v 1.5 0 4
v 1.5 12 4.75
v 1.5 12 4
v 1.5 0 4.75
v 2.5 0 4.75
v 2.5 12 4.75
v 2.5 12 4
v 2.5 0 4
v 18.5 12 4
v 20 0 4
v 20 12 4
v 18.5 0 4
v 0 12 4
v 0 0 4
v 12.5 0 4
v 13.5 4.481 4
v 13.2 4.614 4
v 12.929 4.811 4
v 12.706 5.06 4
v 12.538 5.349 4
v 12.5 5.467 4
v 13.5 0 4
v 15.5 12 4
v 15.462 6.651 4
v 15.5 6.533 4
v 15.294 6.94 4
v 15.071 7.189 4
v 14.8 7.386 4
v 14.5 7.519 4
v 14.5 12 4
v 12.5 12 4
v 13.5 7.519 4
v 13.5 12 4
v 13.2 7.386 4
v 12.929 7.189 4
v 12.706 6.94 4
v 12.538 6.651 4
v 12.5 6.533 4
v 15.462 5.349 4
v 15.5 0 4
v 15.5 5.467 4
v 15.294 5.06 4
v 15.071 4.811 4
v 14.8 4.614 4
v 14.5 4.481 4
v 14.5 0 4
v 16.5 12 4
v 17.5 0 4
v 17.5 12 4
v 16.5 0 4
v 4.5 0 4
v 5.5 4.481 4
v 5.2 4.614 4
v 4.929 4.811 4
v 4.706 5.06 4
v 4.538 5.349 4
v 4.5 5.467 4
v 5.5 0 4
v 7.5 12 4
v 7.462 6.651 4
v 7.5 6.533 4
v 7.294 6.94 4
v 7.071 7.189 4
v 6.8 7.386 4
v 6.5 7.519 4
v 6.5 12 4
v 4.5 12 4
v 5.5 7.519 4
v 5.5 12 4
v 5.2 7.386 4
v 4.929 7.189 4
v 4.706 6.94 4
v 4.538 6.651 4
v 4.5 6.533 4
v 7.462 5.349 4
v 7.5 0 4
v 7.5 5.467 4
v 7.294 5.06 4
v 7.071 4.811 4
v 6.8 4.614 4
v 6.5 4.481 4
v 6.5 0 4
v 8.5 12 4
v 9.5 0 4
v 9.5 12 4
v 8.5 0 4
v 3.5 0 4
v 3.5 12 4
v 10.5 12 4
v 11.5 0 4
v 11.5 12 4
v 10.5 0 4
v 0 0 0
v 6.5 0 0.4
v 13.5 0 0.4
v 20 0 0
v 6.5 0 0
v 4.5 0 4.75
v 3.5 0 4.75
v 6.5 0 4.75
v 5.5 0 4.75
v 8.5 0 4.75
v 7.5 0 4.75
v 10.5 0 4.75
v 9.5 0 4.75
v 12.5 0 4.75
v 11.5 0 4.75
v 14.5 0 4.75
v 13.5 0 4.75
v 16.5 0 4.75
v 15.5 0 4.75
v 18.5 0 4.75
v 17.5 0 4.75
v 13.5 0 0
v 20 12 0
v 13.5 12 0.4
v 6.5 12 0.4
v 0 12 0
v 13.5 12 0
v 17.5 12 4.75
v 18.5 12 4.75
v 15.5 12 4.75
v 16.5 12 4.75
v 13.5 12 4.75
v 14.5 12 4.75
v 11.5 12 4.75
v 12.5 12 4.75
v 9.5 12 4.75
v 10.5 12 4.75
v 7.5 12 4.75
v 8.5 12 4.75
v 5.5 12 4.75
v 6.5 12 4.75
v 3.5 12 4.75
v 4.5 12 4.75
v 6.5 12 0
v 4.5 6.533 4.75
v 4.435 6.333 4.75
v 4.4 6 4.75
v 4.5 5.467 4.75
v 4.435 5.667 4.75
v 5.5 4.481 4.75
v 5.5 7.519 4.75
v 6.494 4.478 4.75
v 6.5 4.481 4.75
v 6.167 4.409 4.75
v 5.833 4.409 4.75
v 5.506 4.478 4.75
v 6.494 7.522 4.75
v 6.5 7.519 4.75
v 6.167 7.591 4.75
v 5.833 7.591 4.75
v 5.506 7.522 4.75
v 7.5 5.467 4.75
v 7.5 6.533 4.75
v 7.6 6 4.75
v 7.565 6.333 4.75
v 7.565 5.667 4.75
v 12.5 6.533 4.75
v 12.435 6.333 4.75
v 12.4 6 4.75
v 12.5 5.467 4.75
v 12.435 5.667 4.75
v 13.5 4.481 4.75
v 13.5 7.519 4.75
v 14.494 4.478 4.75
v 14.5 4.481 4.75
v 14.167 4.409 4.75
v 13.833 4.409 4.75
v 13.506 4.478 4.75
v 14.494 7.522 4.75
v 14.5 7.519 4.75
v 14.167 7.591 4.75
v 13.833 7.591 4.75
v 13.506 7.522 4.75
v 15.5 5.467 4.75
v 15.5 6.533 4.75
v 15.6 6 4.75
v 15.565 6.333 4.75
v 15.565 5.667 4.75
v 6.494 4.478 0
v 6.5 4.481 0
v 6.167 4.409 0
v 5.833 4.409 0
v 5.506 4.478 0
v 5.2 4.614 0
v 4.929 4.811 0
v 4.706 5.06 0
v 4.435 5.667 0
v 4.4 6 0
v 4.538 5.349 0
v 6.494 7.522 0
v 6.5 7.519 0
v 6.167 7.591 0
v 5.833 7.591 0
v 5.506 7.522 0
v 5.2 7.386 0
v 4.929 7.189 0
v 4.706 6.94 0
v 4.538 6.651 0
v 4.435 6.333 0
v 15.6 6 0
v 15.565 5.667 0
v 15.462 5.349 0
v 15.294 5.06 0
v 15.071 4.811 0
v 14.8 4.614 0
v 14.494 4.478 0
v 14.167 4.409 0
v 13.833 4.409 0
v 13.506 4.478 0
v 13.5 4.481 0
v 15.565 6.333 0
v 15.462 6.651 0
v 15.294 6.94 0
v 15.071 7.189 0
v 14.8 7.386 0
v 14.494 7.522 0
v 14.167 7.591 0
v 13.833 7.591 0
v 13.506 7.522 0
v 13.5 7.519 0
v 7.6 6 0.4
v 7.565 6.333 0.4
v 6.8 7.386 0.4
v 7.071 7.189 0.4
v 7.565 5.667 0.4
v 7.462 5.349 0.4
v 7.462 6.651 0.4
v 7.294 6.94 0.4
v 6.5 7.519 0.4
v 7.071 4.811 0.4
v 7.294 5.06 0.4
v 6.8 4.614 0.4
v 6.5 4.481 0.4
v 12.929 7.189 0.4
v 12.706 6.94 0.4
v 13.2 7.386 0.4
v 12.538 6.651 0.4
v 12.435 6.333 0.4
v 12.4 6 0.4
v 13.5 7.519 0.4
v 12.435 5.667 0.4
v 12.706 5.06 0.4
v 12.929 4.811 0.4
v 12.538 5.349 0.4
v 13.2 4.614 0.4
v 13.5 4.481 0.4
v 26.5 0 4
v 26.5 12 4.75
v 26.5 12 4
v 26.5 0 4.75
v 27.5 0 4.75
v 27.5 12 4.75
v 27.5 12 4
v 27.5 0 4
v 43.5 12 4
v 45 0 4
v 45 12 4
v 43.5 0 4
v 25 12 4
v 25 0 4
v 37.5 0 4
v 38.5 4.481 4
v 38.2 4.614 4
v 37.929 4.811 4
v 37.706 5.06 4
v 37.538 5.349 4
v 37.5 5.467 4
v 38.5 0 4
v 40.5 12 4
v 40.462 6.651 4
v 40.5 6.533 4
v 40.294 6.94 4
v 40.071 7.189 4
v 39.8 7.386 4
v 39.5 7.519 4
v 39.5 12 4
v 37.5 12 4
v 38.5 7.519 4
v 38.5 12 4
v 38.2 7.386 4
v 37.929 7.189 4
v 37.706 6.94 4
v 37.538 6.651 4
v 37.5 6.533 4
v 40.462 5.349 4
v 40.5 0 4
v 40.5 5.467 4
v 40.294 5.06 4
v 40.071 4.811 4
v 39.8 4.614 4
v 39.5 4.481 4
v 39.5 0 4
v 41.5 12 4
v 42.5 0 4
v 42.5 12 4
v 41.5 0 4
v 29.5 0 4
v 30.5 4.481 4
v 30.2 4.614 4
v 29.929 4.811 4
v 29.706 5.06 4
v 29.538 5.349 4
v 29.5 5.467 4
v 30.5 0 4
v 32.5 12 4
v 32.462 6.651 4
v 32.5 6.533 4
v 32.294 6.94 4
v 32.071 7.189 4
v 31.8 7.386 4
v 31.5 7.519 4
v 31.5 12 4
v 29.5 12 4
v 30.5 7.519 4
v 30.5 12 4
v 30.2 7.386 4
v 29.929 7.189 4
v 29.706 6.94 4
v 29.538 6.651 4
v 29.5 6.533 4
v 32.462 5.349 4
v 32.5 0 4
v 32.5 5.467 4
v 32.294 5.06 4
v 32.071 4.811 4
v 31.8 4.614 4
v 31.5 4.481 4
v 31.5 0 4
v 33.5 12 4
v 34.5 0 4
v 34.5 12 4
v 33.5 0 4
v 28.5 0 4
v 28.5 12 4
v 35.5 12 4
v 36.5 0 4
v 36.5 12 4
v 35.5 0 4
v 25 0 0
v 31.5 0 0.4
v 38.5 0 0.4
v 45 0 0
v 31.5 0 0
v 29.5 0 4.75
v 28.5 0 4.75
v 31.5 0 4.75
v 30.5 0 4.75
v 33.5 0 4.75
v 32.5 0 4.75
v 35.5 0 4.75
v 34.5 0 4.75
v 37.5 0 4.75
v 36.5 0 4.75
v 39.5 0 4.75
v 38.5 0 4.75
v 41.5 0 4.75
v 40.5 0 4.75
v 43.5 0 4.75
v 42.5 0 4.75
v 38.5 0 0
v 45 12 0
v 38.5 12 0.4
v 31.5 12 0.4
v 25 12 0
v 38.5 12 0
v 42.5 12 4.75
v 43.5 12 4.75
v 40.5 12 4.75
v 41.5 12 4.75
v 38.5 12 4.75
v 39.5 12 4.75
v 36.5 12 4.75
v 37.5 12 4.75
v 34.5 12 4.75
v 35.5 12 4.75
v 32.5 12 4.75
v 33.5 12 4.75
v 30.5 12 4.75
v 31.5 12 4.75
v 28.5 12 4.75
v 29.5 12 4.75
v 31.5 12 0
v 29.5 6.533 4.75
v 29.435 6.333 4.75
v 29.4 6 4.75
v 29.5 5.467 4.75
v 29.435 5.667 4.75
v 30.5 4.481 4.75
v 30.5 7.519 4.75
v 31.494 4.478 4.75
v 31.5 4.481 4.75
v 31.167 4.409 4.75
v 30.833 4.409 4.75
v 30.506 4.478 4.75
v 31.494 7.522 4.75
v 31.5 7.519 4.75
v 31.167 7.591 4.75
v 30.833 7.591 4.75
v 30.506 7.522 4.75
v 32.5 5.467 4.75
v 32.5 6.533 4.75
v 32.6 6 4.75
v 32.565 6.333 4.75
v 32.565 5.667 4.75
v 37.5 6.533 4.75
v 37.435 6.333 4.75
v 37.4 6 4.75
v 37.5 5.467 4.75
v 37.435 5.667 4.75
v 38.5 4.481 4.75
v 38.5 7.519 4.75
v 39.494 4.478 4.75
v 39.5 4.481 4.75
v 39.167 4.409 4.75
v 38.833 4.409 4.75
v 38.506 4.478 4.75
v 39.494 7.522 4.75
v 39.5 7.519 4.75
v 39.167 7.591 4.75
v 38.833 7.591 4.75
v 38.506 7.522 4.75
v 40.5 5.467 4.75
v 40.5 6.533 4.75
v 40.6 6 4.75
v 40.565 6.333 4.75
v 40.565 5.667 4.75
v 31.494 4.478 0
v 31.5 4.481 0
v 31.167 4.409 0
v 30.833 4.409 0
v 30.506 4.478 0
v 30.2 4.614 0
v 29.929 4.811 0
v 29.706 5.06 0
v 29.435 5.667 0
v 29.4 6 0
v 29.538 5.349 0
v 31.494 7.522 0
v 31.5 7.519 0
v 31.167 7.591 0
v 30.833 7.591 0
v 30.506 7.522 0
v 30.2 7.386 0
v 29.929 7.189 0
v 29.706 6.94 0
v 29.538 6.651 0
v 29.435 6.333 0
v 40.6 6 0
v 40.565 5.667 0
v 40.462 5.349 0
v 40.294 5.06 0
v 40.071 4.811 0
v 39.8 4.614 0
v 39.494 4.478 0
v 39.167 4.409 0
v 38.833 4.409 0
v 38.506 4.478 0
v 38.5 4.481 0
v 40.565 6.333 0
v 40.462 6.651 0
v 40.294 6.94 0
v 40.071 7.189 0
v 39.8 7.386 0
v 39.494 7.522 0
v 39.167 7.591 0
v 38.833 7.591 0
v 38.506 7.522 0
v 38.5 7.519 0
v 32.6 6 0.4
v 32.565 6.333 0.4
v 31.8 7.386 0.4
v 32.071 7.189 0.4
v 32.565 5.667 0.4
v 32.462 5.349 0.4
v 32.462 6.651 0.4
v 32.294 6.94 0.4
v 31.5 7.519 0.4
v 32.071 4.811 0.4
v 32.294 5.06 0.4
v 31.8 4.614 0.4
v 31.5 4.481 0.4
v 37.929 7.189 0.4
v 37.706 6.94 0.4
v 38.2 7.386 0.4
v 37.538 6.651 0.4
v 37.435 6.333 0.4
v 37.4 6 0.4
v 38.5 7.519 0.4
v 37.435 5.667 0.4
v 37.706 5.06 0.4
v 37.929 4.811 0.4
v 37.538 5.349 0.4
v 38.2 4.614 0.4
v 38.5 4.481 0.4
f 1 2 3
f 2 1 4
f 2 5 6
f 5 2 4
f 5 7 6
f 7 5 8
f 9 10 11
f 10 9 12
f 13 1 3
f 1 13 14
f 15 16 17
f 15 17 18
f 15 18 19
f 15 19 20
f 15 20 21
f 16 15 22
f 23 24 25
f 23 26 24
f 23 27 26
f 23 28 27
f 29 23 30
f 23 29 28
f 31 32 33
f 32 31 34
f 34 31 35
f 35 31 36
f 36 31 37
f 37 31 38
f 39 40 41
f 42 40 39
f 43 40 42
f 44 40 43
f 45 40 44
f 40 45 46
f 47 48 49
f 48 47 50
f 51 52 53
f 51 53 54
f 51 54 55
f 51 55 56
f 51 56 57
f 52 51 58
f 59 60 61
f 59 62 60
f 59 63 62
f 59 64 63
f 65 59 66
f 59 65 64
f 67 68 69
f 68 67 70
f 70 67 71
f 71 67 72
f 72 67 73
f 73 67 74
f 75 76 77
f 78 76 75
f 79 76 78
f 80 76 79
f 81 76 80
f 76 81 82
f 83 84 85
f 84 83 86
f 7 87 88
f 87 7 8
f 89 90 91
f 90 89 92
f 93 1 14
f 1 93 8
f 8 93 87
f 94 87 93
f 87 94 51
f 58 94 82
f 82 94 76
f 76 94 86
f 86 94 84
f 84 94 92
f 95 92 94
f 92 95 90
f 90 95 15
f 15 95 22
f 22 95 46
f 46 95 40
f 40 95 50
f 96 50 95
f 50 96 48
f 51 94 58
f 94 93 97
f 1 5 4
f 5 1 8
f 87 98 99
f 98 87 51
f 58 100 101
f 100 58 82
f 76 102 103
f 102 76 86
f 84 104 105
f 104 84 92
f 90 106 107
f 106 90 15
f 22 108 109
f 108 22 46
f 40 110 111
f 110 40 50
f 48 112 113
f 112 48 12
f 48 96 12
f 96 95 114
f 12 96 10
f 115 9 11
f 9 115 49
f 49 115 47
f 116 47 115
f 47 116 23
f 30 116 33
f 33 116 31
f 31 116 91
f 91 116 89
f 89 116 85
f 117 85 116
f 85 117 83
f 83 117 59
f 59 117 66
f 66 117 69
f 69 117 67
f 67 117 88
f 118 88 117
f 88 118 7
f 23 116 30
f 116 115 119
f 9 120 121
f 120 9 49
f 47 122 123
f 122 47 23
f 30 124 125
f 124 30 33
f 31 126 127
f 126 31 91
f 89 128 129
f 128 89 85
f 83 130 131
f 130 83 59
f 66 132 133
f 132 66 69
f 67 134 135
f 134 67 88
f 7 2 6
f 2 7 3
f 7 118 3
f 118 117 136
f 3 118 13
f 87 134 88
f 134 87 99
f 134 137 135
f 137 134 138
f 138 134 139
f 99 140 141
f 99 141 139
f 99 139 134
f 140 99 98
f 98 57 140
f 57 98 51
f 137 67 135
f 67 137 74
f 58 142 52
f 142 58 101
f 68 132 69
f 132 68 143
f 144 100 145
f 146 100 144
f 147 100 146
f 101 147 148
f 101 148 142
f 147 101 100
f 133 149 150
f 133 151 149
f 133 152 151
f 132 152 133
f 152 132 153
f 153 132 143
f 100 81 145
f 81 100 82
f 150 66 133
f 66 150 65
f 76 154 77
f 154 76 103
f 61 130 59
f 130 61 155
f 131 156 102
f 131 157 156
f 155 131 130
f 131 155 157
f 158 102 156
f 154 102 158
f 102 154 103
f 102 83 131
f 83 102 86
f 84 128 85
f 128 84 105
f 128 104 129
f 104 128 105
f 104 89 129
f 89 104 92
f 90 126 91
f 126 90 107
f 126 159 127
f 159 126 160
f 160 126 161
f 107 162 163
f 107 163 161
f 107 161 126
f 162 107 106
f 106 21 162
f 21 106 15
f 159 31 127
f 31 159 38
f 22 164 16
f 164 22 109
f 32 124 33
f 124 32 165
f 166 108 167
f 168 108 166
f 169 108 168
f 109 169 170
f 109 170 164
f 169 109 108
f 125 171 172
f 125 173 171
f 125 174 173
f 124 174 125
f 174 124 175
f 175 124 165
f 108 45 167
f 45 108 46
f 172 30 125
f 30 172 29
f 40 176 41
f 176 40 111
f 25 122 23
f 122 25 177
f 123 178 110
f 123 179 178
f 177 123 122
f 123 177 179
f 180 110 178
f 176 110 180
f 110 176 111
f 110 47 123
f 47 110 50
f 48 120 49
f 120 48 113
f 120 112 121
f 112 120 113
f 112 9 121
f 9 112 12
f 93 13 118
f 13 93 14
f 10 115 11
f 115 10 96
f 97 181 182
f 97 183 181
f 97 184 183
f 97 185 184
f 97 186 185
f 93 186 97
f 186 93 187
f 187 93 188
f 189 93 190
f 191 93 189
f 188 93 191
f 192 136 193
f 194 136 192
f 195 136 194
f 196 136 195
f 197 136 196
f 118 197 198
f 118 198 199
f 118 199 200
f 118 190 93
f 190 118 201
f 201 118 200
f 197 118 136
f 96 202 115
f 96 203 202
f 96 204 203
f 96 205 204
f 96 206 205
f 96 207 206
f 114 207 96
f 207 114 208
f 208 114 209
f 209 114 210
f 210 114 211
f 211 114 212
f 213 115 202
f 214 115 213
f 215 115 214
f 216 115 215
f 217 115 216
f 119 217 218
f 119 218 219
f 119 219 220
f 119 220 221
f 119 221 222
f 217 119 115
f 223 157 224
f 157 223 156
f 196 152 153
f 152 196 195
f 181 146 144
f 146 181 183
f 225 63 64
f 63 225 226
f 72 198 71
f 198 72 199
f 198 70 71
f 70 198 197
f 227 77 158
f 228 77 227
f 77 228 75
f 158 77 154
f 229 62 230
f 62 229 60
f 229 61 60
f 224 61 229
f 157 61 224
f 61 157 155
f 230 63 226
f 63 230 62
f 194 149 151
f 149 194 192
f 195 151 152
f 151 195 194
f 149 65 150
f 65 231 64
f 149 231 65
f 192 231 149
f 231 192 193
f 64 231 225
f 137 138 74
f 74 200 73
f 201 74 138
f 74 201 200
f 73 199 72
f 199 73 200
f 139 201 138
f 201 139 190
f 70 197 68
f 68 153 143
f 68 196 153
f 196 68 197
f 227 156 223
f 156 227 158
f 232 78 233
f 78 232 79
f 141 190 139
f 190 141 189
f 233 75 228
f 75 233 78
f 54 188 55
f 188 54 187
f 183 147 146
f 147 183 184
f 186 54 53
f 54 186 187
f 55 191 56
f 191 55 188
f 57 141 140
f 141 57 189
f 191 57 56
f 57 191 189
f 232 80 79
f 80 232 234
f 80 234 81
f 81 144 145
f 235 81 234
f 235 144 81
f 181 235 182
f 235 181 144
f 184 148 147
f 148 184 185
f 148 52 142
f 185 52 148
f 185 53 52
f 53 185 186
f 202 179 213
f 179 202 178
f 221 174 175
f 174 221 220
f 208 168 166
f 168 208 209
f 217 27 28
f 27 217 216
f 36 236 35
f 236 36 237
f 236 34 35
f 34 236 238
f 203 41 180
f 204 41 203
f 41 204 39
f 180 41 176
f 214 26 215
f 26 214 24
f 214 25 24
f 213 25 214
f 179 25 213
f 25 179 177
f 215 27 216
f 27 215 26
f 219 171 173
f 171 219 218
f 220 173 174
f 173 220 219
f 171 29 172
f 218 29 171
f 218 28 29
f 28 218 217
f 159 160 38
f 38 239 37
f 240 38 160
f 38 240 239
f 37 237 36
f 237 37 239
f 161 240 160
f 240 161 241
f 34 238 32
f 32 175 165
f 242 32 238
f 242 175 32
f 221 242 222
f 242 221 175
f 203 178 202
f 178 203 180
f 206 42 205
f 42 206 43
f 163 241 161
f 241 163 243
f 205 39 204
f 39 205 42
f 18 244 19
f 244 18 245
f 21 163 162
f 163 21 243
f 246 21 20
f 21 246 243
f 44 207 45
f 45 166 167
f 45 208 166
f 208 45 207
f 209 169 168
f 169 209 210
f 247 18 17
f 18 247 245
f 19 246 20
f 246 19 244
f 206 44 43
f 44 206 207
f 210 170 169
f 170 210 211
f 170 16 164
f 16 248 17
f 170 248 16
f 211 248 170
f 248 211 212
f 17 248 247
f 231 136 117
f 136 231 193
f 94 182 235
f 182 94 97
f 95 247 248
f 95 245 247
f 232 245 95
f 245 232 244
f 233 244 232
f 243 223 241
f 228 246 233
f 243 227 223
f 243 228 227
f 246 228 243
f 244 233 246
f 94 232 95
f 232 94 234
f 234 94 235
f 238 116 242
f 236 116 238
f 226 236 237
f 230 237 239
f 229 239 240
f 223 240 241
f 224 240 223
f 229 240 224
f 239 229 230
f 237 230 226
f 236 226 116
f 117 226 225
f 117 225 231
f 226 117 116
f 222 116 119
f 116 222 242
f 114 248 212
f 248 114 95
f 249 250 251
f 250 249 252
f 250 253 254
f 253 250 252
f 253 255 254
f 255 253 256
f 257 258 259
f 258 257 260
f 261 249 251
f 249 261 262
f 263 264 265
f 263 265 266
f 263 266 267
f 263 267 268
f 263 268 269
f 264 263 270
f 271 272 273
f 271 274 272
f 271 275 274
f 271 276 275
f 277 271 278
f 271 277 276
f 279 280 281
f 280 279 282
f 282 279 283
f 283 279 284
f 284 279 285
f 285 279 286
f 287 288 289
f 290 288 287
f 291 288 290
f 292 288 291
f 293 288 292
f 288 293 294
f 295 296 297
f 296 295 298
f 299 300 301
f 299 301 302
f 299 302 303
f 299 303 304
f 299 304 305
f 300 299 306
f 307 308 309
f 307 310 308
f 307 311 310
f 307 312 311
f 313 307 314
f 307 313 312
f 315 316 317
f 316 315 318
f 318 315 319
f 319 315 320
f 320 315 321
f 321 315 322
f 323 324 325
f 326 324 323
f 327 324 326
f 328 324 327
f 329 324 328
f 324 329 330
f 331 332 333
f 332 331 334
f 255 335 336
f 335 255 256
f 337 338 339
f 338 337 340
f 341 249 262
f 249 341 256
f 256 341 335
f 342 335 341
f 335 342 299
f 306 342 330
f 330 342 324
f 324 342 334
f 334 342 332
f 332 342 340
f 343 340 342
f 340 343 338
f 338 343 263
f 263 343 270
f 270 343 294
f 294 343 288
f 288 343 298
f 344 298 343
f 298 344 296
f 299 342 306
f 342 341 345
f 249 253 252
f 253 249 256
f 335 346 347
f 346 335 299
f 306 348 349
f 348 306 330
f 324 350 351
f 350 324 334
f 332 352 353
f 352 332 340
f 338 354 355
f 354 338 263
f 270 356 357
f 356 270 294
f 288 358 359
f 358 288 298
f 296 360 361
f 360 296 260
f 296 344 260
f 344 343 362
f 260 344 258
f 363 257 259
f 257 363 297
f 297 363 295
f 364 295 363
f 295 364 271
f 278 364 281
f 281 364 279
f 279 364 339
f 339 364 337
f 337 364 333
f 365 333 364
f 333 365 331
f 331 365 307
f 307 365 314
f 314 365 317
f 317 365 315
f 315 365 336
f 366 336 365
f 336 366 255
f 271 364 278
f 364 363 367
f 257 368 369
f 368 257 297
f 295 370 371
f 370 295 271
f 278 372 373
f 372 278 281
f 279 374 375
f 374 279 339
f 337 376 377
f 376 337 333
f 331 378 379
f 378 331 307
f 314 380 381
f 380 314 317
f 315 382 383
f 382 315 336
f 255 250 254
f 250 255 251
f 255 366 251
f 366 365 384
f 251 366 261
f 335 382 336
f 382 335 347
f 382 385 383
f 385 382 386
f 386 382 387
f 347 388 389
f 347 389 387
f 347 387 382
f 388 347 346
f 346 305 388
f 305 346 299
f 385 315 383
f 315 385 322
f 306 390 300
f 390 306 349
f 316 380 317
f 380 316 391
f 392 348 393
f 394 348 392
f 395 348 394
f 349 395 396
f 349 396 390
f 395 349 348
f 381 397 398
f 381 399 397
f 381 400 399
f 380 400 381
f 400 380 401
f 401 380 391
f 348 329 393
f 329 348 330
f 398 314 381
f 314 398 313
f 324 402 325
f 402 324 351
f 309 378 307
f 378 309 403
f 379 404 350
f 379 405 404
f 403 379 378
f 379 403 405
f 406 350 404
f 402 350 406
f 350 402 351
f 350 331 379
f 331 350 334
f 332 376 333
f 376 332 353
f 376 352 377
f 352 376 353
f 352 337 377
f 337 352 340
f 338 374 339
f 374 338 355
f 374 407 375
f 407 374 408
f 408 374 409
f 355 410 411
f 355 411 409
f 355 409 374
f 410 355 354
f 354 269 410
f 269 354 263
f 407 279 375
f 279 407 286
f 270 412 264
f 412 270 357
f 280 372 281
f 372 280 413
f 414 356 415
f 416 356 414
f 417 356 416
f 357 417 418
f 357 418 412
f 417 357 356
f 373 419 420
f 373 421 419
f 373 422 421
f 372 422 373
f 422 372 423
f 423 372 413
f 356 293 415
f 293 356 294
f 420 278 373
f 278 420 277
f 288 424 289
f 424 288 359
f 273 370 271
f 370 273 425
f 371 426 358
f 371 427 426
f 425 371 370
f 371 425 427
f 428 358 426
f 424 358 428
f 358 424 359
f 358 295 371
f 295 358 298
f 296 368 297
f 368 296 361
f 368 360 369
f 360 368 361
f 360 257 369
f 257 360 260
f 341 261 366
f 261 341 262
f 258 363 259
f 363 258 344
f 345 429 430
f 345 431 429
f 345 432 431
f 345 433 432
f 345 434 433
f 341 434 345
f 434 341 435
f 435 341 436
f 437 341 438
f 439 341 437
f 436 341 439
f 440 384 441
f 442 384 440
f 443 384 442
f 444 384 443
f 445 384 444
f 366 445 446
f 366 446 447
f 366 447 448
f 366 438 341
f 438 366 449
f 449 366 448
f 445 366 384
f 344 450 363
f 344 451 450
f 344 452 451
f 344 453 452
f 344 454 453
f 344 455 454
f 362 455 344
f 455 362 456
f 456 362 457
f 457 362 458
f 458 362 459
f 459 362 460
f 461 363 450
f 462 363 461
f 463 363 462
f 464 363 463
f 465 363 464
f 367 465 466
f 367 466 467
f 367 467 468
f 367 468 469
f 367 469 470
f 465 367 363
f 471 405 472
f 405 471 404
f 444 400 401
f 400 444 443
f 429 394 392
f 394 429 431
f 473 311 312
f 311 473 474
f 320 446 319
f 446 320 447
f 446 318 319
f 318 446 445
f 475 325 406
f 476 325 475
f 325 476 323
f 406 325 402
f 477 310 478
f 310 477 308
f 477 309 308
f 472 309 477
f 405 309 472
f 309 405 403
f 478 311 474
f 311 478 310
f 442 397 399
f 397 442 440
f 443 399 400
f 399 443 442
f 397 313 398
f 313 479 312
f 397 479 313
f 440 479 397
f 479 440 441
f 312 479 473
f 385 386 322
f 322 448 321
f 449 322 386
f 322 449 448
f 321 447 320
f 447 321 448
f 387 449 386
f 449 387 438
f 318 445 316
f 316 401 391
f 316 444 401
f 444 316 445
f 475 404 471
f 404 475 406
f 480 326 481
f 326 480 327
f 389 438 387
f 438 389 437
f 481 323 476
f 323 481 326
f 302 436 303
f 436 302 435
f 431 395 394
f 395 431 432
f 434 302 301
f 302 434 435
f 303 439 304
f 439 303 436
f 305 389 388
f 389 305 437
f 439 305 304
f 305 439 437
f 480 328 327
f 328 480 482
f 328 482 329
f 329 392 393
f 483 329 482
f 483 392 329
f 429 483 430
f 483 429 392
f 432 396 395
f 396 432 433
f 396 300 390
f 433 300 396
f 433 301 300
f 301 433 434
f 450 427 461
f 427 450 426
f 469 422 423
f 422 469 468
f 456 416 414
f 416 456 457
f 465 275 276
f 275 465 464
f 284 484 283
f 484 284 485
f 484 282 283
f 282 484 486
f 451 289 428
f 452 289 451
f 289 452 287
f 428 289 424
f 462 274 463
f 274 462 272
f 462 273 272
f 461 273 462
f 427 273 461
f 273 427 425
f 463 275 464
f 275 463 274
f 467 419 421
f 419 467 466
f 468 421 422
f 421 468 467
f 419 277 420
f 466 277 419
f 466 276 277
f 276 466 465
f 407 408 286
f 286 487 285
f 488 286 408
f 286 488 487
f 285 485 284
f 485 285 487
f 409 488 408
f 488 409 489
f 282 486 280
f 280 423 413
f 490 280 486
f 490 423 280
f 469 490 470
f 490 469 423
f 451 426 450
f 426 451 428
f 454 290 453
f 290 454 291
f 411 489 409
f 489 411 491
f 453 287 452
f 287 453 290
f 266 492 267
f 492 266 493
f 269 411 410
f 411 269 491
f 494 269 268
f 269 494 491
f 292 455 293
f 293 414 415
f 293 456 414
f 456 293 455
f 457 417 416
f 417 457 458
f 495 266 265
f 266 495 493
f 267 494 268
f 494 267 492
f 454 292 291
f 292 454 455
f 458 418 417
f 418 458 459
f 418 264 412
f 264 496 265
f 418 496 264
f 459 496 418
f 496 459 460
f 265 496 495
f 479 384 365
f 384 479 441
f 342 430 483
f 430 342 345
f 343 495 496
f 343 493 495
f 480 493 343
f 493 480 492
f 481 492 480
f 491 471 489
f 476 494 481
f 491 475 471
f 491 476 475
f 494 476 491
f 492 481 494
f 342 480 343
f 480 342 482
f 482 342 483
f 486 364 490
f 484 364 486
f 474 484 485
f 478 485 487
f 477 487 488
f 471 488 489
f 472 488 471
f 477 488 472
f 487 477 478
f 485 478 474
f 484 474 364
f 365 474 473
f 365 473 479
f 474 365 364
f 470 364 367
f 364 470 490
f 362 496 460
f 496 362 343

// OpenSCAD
// ============================================================
// PART 4 — Belt Clamp Plates (print 2x)
// AI-Based Smart Precision Irrigation System (1-Axis)
// ============================================================
// Dimensions: 20 x 12 x 4 mm each
// Material: PLA+, 0.16mm layer, 100% infill, 3 perimeters
// Print time: ~20 min (both)
// Print orientation: Tooth side UP
// CRITICAL: 100% infill — these clamp the belt under full tension
// ============================================================

/* [Clamp Parameters] */
clamp_w     = 20;     // Width (along belt direction)
clamp_d     = 12;     // Depth
clamp_h     = 4;      // Base thickness

/* [GT2 Tooth Profile] */
tooth_pitch = 2.0;    // GT2 standard pitch
tooth_depth = 0.75;   // Tooth engagement depth
tooth_width = 1.0;    // Tooth land width
num_teeth   = 9;      // Number of teeth across clamp width

/* [Bolt Holes] */
bolt_dia    = 3.2;    // M3 clearance
bolt_sep    = 14;     // Matches carriage clamp boss spacing

$fn = 30;

module belt_clamp() {
    difference() {
        union() {
            // Base plate
            cube([clamp_w, clamp_d, clamp_h]);

            // GT2 tooth profile (top surface)
            for (i = [0 : num_teeth - 1]) {
                translate([clamp_w/2 - (num_teeth * tooth_pitch)/2 + i * tooth_pitch + (tooth_pitch - tooth_width)/2, 0, clamp_h])
                cube([tooth_width, clamp_d, tooth_depth]);
            }
        }

        // === M3 BOLT HOLES ===
        translate([clamp_w/2 - bolt_sep/2 + 3, clamp_d/2, -1])
        cylinder(d=bolt_dia, h=clamp_h + tooth_depth + 2);

        translate([clamp_w/2 + bolt_sep/2 - 3, clamp_d/2, -1])
        cylinder(d=bolt_dia, h=clamp_h + tooth_depth + 2);

        // === ALIGNMENT GROOVE (helps locate belt) ===
        // Shallow channel on bottom face to center belt
        translate([(clamp_w - 7)/2, -0.1, -0.1])
        cube([7, clamp_d + 0.2, 0.5]);
    }
}

// === PRINT LAYOUT: 2 clamps side by side ===
belt_clamp();
translate([clamp_w + 5, 0, 0])
belt_clamp();

// === PRINT NOTES ===
// Print TOOTH SIDE UP at 0.16mm layer height
// 100% infill is mandatory — these are structural
// The teeth must mesh with GT2 belt tooth side
// After printing, verify teeth mesh with a belt scrap
// If teeth don't grip: increase tooth_depth to 0.85mm
//
// Assembly: Belt routes through carriage slot, tooth side
// faces clamp teeth, M3 bolts sandwich belt between
// carriage plate and clamp plate. Torque to 0.3 Nm.
